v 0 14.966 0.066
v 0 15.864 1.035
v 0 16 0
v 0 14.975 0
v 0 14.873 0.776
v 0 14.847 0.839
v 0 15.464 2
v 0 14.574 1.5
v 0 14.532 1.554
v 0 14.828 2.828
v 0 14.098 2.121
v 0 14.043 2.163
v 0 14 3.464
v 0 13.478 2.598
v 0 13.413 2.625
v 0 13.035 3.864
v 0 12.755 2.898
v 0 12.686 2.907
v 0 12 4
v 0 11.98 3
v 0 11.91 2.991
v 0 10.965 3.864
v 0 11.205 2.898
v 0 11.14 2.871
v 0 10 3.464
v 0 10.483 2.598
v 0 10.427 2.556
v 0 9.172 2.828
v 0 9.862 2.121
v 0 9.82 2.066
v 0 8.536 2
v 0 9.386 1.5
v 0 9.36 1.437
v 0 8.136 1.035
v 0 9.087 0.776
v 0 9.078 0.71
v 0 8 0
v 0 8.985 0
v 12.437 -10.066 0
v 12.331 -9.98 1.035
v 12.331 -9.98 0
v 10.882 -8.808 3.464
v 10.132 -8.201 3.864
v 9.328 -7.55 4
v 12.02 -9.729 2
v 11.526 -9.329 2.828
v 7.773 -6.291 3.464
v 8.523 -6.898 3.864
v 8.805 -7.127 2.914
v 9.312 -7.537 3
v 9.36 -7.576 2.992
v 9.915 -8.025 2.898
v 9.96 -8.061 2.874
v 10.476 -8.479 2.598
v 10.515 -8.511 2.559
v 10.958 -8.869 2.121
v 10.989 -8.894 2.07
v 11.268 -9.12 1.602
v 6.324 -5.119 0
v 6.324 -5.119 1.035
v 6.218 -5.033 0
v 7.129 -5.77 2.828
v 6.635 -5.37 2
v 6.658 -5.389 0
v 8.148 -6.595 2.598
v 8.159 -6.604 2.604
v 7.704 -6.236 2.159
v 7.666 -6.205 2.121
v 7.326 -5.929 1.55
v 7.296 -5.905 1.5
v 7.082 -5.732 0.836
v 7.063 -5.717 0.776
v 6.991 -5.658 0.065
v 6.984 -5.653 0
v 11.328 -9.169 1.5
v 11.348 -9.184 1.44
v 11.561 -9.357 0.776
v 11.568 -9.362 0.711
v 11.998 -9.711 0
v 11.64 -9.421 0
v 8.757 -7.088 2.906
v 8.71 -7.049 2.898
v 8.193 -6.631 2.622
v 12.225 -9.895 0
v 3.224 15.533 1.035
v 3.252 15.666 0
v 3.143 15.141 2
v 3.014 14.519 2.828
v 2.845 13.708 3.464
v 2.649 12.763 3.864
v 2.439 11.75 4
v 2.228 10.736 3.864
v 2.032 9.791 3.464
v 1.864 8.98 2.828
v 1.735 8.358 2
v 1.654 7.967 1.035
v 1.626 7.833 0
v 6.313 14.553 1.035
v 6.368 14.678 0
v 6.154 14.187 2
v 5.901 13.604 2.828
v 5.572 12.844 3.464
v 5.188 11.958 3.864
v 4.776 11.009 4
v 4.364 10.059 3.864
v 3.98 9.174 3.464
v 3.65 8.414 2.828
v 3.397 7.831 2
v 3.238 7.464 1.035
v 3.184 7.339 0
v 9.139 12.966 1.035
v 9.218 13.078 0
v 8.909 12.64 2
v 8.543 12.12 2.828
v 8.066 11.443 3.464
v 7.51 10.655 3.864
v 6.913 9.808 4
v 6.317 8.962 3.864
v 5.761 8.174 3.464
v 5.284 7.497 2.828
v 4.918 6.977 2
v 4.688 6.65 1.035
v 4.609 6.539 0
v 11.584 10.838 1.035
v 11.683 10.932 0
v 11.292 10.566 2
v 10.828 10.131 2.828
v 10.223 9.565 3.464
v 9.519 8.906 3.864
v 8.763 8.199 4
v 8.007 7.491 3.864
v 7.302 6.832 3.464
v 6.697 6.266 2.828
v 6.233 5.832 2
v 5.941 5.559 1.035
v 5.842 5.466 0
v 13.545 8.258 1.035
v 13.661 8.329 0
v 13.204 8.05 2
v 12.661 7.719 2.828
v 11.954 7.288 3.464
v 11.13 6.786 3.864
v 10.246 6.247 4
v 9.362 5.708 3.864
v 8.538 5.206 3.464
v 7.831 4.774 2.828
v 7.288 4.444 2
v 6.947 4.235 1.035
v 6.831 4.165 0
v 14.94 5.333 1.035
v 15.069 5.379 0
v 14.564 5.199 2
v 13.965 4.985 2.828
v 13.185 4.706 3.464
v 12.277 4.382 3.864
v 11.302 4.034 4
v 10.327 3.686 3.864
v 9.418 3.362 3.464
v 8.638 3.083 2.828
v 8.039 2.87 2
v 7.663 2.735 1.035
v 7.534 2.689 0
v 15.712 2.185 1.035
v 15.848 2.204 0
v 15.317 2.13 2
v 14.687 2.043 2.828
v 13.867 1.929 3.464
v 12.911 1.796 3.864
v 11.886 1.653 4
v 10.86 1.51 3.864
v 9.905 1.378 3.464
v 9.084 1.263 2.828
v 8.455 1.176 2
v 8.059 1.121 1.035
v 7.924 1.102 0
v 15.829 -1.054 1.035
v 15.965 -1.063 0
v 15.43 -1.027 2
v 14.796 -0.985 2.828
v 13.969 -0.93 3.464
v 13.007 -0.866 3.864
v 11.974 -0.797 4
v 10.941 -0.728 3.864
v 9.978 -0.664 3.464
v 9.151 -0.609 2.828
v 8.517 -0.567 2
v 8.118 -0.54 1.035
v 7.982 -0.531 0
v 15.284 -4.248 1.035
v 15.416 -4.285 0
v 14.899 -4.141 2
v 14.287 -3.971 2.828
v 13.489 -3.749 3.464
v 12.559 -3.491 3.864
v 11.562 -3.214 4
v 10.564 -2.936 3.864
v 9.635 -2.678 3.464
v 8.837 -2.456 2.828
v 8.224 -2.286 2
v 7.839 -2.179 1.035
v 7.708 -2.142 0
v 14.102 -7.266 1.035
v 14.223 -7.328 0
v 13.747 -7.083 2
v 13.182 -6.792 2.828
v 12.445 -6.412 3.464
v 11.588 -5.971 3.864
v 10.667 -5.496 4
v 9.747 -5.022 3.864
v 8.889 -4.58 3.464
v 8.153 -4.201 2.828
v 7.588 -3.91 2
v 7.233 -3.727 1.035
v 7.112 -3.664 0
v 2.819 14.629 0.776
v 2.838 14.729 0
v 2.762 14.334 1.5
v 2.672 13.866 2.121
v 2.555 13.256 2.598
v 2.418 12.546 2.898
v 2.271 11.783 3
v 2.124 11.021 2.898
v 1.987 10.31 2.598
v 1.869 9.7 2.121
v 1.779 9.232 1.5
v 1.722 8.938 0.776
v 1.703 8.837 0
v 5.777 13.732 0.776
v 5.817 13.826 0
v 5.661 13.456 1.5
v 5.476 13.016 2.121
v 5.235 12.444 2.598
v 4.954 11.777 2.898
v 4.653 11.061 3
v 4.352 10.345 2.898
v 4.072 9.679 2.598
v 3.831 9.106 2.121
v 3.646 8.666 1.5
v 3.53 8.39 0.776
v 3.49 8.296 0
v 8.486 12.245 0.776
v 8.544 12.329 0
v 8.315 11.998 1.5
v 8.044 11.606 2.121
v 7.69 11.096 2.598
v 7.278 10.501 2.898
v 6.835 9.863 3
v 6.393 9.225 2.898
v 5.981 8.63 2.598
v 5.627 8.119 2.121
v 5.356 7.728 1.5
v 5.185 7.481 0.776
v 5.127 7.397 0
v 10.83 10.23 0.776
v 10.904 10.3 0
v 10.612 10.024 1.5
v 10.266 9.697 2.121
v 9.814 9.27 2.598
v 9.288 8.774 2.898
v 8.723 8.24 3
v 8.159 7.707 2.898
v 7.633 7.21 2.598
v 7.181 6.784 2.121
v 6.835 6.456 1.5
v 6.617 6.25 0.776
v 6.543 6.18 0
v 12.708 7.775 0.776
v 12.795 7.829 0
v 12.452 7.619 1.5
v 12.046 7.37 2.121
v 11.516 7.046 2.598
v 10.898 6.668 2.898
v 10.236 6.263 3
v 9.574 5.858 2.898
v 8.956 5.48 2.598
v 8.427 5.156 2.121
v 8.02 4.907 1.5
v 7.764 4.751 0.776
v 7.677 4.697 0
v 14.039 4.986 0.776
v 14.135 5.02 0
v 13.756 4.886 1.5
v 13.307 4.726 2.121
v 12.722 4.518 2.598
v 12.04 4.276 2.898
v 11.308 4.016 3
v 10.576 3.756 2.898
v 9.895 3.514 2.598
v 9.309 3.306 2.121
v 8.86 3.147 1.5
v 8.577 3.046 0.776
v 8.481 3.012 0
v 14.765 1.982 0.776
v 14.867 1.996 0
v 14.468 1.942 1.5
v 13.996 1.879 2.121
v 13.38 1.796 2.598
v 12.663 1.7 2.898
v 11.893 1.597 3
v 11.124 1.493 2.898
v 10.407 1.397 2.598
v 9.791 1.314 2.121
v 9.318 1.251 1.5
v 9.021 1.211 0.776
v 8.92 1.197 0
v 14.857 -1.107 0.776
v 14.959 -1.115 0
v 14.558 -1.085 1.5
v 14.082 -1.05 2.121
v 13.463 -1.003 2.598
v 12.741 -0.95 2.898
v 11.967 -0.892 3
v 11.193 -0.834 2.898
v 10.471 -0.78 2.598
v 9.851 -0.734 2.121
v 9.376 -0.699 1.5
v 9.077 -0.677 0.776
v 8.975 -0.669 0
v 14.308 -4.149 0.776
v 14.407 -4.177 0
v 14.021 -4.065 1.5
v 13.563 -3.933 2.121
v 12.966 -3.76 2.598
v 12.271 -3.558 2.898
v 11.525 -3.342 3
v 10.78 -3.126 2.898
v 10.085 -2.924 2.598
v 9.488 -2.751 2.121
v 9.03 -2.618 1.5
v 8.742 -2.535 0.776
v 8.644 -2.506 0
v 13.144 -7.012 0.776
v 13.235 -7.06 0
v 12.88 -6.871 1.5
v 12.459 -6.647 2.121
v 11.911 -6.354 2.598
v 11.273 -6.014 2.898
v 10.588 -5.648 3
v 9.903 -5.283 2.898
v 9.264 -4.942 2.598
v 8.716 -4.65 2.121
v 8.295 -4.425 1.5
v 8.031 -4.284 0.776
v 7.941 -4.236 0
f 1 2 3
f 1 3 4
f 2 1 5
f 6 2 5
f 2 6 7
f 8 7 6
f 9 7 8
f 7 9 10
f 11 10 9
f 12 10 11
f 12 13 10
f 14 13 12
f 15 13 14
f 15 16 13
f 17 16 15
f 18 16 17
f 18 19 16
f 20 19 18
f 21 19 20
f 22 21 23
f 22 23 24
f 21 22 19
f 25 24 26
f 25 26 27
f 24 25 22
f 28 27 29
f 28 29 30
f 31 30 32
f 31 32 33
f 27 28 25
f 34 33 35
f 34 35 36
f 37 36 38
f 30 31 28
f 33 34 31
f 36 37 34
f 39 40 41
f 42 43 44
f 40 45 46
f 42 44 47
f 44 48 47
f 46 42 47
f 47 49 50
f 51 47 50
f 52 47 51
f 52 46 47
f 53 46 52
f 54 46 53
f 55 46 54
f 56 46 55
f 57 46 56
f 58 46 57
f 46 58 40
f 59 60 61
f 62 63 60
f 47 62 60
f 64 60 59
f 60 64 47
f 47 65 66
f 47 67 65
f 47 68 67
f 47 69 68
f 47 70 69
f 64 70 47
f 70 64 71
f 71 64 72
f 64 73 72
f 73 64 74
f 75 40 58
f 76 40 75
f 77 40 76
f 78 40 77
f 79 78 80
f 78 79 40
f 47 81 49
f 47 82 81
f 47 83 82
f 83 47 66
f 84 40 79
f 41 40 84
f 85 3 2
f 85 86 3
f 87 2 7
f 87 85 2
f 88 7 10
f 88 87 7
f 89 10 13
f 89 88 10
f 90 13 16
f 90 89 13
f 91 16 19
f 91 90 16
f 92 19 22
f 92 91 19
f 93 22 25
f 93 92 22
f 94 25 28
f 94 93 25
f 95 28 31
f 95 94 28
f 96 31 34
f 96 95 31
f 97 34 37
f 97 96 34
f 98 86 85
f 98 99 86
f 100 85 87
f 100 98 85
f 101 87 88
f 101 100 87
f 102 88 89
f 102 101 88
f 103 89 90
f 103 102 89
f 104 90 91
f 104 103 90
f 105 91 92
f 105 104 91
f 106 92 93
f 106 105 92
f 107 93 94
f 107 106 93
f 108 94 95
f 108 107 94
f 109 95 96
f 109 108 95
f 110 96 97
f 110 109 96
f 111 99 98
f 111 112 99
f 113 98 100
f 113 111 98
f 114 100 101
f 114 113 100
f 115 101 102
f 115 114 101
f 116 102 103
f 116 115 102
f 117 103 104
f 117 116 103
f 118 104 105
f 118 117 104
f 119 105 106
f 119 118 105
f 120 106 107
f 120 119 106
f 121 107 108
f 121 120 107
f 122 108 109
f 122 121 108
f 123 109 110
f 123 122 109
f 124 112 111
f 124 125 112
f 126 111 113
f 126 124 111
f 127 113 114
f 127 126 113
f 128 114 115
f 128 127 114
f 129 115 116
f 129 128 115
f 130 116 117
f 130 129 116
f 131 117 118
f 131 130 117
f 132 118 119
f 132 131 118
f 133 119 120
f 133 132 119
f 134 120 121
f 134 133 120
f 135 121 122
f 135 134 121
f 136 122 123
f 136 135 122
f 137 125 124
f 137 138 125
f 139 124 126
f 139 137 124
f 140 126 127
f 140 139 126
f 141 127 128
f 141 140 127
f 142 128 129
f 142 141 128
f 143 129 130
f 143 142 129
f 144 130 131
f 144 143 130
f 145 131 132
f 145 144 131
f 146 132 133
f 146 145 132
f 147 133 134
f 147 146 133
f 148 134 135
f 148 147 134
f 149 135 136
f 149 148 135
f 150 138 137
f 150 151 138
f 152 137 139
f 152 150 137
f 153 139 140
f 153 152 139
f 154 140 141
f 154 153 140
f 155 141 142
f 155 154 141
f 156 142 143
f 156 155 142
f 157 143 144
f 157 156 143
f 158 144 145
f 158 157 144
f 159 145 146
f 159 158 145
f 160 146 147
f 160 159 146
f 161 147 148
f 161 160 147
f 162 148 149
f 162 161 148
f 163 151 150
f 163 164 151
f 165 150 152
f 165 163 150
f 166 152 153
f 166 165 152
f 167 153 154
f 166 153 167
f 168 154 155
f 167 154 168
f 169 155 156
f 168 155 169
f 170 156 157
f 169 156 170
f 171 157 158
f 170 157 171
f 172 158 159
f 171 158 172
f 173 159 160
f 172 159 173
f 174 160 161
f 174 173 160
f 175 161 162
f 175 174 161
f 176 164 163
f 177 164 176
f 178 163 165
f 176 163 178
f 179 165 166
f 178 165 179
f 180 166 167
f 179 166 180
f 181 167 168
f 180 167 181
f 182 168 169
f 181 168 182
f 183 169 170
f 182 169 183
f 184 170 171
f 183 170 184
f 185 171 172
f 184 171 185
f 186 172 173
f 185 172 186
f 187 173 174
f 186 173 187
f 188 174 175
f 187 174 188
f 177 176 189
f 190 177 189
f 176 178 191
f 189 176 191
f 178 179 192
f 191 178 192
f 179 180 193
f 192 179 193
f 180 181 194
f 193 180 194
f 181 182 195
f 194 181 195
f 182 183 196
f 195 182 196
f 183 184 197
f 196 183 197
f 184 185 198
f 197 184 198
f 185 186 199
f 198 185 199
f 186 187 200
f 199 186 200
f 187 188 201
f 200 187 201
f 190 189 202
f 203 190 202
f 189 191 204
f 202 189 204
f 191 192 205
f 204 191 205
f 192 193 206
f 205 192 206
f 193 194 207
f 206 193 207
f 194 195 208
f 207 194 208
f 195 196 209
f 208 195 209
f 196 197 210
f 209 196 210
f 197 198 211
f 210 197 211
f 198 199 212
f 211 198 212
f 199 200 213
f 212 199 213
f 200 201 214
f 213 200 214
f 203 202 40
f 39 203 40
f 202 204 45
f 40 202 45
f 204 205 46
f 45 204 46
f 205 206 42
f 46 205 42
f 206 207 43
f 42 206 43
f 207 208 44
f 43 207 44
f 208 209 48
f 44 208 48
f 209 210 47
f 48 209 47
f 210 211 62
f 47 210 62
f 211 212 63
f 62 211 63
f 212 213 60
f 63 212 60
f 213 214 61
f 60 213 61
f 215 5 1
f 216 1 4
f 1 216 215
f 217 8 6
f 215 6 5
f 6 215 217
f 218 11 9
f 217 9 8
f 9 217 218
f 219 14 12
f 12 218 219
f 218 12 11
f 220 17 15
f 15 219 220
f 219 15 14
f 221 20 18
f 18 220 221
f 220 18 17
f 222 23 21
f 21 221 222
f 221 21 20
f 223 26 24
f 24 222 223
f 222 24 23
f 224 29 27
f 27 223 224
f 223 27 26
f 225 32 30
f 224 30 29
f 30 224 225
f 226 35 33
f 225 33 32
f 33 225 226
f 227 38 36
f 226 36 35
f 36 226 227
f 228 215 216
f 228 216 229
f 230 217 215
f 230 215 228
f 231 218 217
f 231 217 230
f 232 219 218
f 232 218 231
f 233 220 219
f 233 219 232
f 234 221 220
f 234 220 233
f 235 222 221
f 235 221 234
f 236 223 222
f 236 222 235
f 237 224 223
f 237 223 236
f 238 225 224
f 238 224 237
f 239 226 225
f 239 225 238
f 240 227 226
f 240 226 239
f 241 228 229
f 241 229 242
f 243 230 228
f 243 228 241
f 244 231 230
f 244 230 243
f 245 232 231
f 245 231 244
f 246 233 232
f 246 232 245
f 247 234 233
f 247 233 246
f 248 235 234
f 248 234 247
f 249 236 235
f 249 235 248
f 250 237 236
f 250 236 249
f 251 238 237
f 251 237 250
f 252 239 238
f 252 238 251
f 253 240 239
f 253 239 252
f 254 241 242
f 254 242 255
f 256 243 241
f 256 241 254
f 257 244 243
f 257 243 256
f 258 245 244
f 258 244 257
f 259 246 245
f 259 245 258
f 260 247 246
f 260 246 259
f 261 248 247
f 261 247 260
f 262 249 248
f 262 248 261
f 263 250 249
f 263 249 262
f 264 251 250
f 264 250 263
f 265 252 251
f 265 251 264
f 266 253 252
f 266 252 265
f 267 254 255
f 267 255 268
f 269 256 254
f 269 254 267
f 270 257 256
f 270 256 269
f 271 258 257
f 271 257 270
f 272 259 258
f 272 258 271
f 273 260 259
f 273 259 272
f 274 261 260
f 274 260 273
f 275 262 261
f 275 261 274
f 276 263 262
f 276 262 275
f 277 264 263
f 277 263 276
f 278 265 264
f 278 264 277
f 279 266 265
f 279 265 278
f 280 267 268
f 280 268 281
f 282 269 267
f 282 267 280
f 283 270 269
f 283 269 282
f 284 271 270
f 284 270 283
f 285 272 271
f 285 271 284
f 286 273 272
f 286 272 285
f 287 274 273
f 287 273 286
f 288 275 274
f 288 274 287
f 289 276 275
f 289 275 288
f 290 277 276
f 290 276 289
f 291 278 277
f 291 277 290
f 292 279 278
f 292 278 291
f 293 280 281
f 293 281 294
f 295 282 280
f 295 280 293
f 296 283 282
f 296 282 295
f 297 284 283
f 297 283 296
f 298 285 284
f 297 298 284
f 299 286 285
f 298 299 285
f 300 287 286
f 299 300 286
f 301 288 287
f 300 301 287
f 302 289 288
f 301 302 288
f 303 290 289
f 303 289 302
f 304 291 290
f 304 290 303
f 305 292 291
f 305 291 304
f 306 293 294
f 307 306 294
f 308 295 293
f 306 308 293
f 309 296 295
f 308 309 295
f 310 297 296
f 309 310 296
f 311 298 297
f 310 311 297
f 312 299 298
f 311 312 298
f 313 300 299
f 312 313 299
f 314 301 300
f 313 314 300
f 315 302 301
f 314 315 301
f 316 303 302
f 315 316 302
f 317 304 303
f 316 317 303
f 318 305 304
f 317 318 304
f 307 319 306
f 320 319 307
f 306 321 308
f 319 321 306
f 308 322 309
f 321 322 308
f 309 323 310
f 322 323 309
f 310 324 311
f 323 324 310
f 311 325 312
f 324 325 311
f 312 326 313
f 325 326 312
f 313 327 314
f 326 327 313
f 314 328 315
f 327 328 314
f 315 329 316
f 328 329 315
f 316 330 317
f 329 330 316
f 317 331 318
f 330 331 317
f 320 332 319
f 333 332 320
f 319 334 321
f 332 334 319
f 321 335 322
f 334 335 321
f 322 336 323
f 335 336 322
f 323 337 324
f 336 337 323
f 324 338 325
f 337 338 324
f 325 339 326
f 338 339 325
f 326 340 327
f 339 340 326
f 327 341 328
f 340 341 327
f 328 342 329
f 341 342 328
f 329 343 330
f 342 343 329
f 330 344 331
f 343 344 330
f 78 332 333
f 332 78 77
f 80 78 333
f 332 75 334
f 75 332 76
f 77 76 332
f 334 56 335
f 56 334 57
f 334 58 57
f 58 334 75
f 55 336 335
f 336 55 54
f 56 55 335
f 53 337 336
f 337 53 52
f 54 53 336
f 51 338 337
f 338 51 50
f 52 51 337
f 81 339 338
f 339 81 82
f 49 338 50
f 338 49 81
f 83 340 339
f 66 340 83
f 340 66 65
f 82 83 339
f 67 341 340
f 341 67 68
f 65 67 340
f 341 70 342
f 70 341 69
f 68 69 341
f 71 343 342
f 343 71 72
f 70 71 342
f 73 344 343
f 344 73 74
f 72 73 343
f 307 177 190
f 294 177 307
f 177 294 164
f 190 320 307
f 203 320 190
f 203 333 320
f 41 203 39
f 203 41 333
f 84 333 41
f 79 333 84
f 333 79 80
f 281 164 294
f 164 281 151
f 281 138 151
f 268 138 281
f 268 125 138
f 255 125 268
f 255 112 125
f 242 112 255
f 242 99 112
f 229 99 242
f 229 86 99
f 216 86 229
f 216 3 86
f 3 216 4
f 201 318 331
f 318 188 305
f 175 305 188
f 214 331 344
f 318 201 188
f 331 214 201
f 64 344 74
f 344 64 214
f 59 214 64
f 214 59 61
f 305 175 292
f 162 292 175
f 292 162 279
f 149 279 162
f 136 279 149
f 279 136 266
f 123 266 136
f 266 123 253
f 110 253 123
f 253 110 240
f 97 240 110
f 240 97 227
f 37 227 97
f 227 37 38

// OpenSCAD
// file: ../build_environments.scad
// build_environments.scad: modules to build level sections
//

module pool(diameter=10.0, wall_height=2.0, step_width=3.0, connections=[])
{
    difference() {
        union() {
        difference() {
            cylinder(h=0.5,r1=diameter+step_width,r2=diameter+step_width,$fn=48);
            translate([0,0,-0.1])
                cylinder(h=0.7,r1=diameter,r2=diameter,$fn=48);
        }
        difference() {
            cylinder(h=wall_height,r1=diameter+step_width+1.0,r2=diameter+step_width+1.0,$fn=48);
            translate([0,0,-0.1])
                cylinder(h=wall_height+0.2,r1=diameter+step_width,r2=diameter+step_width,$fn=48);
        }
        }
    
        for (c = connections)
        {
            rotate([0,90,0]) {
                angle = atan2(c[1],c[0]);
                rotate([-angle,0,0]) {
                    cylinder(h=diameter+5.0,r1=c[2],r2=c[2],$fn=48);
                }
            }
        }
    }
}

module straight(length=10.0, width=2.0, dy1=0.0, dy2=0.0, dz=0.0)
{
    dims = [0, 0, 0, 0, 0, (dz/length)];
    matrix = [
        [ 1, dims[0], dims[1], 0 ],
        [ dims[2], 1, dims[4], 0 ],
        [ dims[5], dims[3], 1, 0 ],
        [ 0, 0, 0, 1 ]
    ];
    multmatrix(matrix)
    difference() {
        translate([dy1,0,0])
        union() {
            rotate([0,90,0]) {
                difference() {
                    cylinder(h=(length-dy1-dy2),r1=width+1.0,r2=width+1.0,$fn=24);
                    translate([0,0,-0.1])
                        cylinder(h=(length-dy1-dy2+0.2),r1=width,r2=width,$fn=24);
                }
                difference() {
                    cylinder(h=1.0,r1=width+2.0,r2=width+2.0,$fn=24);
                    translate([0,0,-0.1])
                        cylinder(h=1.2,r1=width,r2=width,$fn=24);
                }
                translate([0,0,(length-dy1-dy2)-1.0]) {
                    difference() {
                        cylinder(h=1.0,r1=width+2.0,r2=width+2.0,$fn=24);
                        translate([0,0,-0.1])
                            cylinder(h=1.2,r1=width,r2=width,$fn=24);
                    }
                }
            }
        }
        translate([0,0,-(2*width+4.0)/2])
            cube([3*length,3*length,2*width+4.0],center=true);
    }
}

module curve(p0=[0,0], center=[0,0], dir=1, angle=0.0, width=2.0)
{
    radius = sqrt((p0[0]-center[0])*(p0[0]-center[0]) + (p0[1]-center[1])*(p0[1]-center[1]));
    if (dir == 0) {
        difference() {
            rotate([0,0,-90])
            difference() {
                rotate_extrude(angle = angle, convexity = 10, $fn=32)
                    translate([radius, 0, 0])
                        circle(r = width+1.0,$fn=24);
                rotate([0,0,-1.0])
                    rotate_extrude(angle = angle+2.0, convexity = 10, $fn=32)
                        translate([radius, 0, 0])
                            circle(r = width,$fn=24);
            }
            translate([0,0,-(2*width+4.0)/2])
                cube([5*radius,5*radius,2*width+4.0],center=true);
        }
    }
    else {
        difference() {
            rotate([0,0,90])
            difference() {
                rotate_extrude(angle = -angle, convexity = 10, $fn=32)
                    translate([radius, 0, 0])
                        circle(r = width+1.0,$fn=24);
                rotate([0,0,1.0])
                    rotate_extrude(angle = -angle-2.0, convexity = 10, $fn=32)
                        translate([radius, 0, 0])
                            circle(r = width,$fn=24);
            }
            translate([0,0,-(2*width+4.0)/2])
                cube([5*radius,5*radius,2*width+4.0],center=true);
        }
    }

}

// test pool
//pool(diameter=12.0000, wall_height=3.0000, step_width=3.0000, connections=[[0.0000,-26.0000,2.0000], [23.6074,0.0000,2.0000]]);

// test straight, slope
//straight(length=26.0000, width=2.0000, dy1=11.8322, dy2=6.7082, dz=0.0000);
//straight(length=29.1549, width=12.0000, dy1=0.0000, dy2=0.0000, dz=-15.0000);

// test curve
//curve(p0=[23.6074, 0.0000], center=[23.6074, 5.0000], dir=0, angle=60.1011, width=2.0000);
//curve(p0=[33.6426, 12.4219], center=[37.9771, 9.9295], dir=1, angle=120.4627, width=2.0000);
// main file
use <../build_environments.scad>;
curve(p0=[-95.1699, -27.4634], center=[-92.8259, -15.6945], dir=1, angle=128.9858, width=3.0000);
